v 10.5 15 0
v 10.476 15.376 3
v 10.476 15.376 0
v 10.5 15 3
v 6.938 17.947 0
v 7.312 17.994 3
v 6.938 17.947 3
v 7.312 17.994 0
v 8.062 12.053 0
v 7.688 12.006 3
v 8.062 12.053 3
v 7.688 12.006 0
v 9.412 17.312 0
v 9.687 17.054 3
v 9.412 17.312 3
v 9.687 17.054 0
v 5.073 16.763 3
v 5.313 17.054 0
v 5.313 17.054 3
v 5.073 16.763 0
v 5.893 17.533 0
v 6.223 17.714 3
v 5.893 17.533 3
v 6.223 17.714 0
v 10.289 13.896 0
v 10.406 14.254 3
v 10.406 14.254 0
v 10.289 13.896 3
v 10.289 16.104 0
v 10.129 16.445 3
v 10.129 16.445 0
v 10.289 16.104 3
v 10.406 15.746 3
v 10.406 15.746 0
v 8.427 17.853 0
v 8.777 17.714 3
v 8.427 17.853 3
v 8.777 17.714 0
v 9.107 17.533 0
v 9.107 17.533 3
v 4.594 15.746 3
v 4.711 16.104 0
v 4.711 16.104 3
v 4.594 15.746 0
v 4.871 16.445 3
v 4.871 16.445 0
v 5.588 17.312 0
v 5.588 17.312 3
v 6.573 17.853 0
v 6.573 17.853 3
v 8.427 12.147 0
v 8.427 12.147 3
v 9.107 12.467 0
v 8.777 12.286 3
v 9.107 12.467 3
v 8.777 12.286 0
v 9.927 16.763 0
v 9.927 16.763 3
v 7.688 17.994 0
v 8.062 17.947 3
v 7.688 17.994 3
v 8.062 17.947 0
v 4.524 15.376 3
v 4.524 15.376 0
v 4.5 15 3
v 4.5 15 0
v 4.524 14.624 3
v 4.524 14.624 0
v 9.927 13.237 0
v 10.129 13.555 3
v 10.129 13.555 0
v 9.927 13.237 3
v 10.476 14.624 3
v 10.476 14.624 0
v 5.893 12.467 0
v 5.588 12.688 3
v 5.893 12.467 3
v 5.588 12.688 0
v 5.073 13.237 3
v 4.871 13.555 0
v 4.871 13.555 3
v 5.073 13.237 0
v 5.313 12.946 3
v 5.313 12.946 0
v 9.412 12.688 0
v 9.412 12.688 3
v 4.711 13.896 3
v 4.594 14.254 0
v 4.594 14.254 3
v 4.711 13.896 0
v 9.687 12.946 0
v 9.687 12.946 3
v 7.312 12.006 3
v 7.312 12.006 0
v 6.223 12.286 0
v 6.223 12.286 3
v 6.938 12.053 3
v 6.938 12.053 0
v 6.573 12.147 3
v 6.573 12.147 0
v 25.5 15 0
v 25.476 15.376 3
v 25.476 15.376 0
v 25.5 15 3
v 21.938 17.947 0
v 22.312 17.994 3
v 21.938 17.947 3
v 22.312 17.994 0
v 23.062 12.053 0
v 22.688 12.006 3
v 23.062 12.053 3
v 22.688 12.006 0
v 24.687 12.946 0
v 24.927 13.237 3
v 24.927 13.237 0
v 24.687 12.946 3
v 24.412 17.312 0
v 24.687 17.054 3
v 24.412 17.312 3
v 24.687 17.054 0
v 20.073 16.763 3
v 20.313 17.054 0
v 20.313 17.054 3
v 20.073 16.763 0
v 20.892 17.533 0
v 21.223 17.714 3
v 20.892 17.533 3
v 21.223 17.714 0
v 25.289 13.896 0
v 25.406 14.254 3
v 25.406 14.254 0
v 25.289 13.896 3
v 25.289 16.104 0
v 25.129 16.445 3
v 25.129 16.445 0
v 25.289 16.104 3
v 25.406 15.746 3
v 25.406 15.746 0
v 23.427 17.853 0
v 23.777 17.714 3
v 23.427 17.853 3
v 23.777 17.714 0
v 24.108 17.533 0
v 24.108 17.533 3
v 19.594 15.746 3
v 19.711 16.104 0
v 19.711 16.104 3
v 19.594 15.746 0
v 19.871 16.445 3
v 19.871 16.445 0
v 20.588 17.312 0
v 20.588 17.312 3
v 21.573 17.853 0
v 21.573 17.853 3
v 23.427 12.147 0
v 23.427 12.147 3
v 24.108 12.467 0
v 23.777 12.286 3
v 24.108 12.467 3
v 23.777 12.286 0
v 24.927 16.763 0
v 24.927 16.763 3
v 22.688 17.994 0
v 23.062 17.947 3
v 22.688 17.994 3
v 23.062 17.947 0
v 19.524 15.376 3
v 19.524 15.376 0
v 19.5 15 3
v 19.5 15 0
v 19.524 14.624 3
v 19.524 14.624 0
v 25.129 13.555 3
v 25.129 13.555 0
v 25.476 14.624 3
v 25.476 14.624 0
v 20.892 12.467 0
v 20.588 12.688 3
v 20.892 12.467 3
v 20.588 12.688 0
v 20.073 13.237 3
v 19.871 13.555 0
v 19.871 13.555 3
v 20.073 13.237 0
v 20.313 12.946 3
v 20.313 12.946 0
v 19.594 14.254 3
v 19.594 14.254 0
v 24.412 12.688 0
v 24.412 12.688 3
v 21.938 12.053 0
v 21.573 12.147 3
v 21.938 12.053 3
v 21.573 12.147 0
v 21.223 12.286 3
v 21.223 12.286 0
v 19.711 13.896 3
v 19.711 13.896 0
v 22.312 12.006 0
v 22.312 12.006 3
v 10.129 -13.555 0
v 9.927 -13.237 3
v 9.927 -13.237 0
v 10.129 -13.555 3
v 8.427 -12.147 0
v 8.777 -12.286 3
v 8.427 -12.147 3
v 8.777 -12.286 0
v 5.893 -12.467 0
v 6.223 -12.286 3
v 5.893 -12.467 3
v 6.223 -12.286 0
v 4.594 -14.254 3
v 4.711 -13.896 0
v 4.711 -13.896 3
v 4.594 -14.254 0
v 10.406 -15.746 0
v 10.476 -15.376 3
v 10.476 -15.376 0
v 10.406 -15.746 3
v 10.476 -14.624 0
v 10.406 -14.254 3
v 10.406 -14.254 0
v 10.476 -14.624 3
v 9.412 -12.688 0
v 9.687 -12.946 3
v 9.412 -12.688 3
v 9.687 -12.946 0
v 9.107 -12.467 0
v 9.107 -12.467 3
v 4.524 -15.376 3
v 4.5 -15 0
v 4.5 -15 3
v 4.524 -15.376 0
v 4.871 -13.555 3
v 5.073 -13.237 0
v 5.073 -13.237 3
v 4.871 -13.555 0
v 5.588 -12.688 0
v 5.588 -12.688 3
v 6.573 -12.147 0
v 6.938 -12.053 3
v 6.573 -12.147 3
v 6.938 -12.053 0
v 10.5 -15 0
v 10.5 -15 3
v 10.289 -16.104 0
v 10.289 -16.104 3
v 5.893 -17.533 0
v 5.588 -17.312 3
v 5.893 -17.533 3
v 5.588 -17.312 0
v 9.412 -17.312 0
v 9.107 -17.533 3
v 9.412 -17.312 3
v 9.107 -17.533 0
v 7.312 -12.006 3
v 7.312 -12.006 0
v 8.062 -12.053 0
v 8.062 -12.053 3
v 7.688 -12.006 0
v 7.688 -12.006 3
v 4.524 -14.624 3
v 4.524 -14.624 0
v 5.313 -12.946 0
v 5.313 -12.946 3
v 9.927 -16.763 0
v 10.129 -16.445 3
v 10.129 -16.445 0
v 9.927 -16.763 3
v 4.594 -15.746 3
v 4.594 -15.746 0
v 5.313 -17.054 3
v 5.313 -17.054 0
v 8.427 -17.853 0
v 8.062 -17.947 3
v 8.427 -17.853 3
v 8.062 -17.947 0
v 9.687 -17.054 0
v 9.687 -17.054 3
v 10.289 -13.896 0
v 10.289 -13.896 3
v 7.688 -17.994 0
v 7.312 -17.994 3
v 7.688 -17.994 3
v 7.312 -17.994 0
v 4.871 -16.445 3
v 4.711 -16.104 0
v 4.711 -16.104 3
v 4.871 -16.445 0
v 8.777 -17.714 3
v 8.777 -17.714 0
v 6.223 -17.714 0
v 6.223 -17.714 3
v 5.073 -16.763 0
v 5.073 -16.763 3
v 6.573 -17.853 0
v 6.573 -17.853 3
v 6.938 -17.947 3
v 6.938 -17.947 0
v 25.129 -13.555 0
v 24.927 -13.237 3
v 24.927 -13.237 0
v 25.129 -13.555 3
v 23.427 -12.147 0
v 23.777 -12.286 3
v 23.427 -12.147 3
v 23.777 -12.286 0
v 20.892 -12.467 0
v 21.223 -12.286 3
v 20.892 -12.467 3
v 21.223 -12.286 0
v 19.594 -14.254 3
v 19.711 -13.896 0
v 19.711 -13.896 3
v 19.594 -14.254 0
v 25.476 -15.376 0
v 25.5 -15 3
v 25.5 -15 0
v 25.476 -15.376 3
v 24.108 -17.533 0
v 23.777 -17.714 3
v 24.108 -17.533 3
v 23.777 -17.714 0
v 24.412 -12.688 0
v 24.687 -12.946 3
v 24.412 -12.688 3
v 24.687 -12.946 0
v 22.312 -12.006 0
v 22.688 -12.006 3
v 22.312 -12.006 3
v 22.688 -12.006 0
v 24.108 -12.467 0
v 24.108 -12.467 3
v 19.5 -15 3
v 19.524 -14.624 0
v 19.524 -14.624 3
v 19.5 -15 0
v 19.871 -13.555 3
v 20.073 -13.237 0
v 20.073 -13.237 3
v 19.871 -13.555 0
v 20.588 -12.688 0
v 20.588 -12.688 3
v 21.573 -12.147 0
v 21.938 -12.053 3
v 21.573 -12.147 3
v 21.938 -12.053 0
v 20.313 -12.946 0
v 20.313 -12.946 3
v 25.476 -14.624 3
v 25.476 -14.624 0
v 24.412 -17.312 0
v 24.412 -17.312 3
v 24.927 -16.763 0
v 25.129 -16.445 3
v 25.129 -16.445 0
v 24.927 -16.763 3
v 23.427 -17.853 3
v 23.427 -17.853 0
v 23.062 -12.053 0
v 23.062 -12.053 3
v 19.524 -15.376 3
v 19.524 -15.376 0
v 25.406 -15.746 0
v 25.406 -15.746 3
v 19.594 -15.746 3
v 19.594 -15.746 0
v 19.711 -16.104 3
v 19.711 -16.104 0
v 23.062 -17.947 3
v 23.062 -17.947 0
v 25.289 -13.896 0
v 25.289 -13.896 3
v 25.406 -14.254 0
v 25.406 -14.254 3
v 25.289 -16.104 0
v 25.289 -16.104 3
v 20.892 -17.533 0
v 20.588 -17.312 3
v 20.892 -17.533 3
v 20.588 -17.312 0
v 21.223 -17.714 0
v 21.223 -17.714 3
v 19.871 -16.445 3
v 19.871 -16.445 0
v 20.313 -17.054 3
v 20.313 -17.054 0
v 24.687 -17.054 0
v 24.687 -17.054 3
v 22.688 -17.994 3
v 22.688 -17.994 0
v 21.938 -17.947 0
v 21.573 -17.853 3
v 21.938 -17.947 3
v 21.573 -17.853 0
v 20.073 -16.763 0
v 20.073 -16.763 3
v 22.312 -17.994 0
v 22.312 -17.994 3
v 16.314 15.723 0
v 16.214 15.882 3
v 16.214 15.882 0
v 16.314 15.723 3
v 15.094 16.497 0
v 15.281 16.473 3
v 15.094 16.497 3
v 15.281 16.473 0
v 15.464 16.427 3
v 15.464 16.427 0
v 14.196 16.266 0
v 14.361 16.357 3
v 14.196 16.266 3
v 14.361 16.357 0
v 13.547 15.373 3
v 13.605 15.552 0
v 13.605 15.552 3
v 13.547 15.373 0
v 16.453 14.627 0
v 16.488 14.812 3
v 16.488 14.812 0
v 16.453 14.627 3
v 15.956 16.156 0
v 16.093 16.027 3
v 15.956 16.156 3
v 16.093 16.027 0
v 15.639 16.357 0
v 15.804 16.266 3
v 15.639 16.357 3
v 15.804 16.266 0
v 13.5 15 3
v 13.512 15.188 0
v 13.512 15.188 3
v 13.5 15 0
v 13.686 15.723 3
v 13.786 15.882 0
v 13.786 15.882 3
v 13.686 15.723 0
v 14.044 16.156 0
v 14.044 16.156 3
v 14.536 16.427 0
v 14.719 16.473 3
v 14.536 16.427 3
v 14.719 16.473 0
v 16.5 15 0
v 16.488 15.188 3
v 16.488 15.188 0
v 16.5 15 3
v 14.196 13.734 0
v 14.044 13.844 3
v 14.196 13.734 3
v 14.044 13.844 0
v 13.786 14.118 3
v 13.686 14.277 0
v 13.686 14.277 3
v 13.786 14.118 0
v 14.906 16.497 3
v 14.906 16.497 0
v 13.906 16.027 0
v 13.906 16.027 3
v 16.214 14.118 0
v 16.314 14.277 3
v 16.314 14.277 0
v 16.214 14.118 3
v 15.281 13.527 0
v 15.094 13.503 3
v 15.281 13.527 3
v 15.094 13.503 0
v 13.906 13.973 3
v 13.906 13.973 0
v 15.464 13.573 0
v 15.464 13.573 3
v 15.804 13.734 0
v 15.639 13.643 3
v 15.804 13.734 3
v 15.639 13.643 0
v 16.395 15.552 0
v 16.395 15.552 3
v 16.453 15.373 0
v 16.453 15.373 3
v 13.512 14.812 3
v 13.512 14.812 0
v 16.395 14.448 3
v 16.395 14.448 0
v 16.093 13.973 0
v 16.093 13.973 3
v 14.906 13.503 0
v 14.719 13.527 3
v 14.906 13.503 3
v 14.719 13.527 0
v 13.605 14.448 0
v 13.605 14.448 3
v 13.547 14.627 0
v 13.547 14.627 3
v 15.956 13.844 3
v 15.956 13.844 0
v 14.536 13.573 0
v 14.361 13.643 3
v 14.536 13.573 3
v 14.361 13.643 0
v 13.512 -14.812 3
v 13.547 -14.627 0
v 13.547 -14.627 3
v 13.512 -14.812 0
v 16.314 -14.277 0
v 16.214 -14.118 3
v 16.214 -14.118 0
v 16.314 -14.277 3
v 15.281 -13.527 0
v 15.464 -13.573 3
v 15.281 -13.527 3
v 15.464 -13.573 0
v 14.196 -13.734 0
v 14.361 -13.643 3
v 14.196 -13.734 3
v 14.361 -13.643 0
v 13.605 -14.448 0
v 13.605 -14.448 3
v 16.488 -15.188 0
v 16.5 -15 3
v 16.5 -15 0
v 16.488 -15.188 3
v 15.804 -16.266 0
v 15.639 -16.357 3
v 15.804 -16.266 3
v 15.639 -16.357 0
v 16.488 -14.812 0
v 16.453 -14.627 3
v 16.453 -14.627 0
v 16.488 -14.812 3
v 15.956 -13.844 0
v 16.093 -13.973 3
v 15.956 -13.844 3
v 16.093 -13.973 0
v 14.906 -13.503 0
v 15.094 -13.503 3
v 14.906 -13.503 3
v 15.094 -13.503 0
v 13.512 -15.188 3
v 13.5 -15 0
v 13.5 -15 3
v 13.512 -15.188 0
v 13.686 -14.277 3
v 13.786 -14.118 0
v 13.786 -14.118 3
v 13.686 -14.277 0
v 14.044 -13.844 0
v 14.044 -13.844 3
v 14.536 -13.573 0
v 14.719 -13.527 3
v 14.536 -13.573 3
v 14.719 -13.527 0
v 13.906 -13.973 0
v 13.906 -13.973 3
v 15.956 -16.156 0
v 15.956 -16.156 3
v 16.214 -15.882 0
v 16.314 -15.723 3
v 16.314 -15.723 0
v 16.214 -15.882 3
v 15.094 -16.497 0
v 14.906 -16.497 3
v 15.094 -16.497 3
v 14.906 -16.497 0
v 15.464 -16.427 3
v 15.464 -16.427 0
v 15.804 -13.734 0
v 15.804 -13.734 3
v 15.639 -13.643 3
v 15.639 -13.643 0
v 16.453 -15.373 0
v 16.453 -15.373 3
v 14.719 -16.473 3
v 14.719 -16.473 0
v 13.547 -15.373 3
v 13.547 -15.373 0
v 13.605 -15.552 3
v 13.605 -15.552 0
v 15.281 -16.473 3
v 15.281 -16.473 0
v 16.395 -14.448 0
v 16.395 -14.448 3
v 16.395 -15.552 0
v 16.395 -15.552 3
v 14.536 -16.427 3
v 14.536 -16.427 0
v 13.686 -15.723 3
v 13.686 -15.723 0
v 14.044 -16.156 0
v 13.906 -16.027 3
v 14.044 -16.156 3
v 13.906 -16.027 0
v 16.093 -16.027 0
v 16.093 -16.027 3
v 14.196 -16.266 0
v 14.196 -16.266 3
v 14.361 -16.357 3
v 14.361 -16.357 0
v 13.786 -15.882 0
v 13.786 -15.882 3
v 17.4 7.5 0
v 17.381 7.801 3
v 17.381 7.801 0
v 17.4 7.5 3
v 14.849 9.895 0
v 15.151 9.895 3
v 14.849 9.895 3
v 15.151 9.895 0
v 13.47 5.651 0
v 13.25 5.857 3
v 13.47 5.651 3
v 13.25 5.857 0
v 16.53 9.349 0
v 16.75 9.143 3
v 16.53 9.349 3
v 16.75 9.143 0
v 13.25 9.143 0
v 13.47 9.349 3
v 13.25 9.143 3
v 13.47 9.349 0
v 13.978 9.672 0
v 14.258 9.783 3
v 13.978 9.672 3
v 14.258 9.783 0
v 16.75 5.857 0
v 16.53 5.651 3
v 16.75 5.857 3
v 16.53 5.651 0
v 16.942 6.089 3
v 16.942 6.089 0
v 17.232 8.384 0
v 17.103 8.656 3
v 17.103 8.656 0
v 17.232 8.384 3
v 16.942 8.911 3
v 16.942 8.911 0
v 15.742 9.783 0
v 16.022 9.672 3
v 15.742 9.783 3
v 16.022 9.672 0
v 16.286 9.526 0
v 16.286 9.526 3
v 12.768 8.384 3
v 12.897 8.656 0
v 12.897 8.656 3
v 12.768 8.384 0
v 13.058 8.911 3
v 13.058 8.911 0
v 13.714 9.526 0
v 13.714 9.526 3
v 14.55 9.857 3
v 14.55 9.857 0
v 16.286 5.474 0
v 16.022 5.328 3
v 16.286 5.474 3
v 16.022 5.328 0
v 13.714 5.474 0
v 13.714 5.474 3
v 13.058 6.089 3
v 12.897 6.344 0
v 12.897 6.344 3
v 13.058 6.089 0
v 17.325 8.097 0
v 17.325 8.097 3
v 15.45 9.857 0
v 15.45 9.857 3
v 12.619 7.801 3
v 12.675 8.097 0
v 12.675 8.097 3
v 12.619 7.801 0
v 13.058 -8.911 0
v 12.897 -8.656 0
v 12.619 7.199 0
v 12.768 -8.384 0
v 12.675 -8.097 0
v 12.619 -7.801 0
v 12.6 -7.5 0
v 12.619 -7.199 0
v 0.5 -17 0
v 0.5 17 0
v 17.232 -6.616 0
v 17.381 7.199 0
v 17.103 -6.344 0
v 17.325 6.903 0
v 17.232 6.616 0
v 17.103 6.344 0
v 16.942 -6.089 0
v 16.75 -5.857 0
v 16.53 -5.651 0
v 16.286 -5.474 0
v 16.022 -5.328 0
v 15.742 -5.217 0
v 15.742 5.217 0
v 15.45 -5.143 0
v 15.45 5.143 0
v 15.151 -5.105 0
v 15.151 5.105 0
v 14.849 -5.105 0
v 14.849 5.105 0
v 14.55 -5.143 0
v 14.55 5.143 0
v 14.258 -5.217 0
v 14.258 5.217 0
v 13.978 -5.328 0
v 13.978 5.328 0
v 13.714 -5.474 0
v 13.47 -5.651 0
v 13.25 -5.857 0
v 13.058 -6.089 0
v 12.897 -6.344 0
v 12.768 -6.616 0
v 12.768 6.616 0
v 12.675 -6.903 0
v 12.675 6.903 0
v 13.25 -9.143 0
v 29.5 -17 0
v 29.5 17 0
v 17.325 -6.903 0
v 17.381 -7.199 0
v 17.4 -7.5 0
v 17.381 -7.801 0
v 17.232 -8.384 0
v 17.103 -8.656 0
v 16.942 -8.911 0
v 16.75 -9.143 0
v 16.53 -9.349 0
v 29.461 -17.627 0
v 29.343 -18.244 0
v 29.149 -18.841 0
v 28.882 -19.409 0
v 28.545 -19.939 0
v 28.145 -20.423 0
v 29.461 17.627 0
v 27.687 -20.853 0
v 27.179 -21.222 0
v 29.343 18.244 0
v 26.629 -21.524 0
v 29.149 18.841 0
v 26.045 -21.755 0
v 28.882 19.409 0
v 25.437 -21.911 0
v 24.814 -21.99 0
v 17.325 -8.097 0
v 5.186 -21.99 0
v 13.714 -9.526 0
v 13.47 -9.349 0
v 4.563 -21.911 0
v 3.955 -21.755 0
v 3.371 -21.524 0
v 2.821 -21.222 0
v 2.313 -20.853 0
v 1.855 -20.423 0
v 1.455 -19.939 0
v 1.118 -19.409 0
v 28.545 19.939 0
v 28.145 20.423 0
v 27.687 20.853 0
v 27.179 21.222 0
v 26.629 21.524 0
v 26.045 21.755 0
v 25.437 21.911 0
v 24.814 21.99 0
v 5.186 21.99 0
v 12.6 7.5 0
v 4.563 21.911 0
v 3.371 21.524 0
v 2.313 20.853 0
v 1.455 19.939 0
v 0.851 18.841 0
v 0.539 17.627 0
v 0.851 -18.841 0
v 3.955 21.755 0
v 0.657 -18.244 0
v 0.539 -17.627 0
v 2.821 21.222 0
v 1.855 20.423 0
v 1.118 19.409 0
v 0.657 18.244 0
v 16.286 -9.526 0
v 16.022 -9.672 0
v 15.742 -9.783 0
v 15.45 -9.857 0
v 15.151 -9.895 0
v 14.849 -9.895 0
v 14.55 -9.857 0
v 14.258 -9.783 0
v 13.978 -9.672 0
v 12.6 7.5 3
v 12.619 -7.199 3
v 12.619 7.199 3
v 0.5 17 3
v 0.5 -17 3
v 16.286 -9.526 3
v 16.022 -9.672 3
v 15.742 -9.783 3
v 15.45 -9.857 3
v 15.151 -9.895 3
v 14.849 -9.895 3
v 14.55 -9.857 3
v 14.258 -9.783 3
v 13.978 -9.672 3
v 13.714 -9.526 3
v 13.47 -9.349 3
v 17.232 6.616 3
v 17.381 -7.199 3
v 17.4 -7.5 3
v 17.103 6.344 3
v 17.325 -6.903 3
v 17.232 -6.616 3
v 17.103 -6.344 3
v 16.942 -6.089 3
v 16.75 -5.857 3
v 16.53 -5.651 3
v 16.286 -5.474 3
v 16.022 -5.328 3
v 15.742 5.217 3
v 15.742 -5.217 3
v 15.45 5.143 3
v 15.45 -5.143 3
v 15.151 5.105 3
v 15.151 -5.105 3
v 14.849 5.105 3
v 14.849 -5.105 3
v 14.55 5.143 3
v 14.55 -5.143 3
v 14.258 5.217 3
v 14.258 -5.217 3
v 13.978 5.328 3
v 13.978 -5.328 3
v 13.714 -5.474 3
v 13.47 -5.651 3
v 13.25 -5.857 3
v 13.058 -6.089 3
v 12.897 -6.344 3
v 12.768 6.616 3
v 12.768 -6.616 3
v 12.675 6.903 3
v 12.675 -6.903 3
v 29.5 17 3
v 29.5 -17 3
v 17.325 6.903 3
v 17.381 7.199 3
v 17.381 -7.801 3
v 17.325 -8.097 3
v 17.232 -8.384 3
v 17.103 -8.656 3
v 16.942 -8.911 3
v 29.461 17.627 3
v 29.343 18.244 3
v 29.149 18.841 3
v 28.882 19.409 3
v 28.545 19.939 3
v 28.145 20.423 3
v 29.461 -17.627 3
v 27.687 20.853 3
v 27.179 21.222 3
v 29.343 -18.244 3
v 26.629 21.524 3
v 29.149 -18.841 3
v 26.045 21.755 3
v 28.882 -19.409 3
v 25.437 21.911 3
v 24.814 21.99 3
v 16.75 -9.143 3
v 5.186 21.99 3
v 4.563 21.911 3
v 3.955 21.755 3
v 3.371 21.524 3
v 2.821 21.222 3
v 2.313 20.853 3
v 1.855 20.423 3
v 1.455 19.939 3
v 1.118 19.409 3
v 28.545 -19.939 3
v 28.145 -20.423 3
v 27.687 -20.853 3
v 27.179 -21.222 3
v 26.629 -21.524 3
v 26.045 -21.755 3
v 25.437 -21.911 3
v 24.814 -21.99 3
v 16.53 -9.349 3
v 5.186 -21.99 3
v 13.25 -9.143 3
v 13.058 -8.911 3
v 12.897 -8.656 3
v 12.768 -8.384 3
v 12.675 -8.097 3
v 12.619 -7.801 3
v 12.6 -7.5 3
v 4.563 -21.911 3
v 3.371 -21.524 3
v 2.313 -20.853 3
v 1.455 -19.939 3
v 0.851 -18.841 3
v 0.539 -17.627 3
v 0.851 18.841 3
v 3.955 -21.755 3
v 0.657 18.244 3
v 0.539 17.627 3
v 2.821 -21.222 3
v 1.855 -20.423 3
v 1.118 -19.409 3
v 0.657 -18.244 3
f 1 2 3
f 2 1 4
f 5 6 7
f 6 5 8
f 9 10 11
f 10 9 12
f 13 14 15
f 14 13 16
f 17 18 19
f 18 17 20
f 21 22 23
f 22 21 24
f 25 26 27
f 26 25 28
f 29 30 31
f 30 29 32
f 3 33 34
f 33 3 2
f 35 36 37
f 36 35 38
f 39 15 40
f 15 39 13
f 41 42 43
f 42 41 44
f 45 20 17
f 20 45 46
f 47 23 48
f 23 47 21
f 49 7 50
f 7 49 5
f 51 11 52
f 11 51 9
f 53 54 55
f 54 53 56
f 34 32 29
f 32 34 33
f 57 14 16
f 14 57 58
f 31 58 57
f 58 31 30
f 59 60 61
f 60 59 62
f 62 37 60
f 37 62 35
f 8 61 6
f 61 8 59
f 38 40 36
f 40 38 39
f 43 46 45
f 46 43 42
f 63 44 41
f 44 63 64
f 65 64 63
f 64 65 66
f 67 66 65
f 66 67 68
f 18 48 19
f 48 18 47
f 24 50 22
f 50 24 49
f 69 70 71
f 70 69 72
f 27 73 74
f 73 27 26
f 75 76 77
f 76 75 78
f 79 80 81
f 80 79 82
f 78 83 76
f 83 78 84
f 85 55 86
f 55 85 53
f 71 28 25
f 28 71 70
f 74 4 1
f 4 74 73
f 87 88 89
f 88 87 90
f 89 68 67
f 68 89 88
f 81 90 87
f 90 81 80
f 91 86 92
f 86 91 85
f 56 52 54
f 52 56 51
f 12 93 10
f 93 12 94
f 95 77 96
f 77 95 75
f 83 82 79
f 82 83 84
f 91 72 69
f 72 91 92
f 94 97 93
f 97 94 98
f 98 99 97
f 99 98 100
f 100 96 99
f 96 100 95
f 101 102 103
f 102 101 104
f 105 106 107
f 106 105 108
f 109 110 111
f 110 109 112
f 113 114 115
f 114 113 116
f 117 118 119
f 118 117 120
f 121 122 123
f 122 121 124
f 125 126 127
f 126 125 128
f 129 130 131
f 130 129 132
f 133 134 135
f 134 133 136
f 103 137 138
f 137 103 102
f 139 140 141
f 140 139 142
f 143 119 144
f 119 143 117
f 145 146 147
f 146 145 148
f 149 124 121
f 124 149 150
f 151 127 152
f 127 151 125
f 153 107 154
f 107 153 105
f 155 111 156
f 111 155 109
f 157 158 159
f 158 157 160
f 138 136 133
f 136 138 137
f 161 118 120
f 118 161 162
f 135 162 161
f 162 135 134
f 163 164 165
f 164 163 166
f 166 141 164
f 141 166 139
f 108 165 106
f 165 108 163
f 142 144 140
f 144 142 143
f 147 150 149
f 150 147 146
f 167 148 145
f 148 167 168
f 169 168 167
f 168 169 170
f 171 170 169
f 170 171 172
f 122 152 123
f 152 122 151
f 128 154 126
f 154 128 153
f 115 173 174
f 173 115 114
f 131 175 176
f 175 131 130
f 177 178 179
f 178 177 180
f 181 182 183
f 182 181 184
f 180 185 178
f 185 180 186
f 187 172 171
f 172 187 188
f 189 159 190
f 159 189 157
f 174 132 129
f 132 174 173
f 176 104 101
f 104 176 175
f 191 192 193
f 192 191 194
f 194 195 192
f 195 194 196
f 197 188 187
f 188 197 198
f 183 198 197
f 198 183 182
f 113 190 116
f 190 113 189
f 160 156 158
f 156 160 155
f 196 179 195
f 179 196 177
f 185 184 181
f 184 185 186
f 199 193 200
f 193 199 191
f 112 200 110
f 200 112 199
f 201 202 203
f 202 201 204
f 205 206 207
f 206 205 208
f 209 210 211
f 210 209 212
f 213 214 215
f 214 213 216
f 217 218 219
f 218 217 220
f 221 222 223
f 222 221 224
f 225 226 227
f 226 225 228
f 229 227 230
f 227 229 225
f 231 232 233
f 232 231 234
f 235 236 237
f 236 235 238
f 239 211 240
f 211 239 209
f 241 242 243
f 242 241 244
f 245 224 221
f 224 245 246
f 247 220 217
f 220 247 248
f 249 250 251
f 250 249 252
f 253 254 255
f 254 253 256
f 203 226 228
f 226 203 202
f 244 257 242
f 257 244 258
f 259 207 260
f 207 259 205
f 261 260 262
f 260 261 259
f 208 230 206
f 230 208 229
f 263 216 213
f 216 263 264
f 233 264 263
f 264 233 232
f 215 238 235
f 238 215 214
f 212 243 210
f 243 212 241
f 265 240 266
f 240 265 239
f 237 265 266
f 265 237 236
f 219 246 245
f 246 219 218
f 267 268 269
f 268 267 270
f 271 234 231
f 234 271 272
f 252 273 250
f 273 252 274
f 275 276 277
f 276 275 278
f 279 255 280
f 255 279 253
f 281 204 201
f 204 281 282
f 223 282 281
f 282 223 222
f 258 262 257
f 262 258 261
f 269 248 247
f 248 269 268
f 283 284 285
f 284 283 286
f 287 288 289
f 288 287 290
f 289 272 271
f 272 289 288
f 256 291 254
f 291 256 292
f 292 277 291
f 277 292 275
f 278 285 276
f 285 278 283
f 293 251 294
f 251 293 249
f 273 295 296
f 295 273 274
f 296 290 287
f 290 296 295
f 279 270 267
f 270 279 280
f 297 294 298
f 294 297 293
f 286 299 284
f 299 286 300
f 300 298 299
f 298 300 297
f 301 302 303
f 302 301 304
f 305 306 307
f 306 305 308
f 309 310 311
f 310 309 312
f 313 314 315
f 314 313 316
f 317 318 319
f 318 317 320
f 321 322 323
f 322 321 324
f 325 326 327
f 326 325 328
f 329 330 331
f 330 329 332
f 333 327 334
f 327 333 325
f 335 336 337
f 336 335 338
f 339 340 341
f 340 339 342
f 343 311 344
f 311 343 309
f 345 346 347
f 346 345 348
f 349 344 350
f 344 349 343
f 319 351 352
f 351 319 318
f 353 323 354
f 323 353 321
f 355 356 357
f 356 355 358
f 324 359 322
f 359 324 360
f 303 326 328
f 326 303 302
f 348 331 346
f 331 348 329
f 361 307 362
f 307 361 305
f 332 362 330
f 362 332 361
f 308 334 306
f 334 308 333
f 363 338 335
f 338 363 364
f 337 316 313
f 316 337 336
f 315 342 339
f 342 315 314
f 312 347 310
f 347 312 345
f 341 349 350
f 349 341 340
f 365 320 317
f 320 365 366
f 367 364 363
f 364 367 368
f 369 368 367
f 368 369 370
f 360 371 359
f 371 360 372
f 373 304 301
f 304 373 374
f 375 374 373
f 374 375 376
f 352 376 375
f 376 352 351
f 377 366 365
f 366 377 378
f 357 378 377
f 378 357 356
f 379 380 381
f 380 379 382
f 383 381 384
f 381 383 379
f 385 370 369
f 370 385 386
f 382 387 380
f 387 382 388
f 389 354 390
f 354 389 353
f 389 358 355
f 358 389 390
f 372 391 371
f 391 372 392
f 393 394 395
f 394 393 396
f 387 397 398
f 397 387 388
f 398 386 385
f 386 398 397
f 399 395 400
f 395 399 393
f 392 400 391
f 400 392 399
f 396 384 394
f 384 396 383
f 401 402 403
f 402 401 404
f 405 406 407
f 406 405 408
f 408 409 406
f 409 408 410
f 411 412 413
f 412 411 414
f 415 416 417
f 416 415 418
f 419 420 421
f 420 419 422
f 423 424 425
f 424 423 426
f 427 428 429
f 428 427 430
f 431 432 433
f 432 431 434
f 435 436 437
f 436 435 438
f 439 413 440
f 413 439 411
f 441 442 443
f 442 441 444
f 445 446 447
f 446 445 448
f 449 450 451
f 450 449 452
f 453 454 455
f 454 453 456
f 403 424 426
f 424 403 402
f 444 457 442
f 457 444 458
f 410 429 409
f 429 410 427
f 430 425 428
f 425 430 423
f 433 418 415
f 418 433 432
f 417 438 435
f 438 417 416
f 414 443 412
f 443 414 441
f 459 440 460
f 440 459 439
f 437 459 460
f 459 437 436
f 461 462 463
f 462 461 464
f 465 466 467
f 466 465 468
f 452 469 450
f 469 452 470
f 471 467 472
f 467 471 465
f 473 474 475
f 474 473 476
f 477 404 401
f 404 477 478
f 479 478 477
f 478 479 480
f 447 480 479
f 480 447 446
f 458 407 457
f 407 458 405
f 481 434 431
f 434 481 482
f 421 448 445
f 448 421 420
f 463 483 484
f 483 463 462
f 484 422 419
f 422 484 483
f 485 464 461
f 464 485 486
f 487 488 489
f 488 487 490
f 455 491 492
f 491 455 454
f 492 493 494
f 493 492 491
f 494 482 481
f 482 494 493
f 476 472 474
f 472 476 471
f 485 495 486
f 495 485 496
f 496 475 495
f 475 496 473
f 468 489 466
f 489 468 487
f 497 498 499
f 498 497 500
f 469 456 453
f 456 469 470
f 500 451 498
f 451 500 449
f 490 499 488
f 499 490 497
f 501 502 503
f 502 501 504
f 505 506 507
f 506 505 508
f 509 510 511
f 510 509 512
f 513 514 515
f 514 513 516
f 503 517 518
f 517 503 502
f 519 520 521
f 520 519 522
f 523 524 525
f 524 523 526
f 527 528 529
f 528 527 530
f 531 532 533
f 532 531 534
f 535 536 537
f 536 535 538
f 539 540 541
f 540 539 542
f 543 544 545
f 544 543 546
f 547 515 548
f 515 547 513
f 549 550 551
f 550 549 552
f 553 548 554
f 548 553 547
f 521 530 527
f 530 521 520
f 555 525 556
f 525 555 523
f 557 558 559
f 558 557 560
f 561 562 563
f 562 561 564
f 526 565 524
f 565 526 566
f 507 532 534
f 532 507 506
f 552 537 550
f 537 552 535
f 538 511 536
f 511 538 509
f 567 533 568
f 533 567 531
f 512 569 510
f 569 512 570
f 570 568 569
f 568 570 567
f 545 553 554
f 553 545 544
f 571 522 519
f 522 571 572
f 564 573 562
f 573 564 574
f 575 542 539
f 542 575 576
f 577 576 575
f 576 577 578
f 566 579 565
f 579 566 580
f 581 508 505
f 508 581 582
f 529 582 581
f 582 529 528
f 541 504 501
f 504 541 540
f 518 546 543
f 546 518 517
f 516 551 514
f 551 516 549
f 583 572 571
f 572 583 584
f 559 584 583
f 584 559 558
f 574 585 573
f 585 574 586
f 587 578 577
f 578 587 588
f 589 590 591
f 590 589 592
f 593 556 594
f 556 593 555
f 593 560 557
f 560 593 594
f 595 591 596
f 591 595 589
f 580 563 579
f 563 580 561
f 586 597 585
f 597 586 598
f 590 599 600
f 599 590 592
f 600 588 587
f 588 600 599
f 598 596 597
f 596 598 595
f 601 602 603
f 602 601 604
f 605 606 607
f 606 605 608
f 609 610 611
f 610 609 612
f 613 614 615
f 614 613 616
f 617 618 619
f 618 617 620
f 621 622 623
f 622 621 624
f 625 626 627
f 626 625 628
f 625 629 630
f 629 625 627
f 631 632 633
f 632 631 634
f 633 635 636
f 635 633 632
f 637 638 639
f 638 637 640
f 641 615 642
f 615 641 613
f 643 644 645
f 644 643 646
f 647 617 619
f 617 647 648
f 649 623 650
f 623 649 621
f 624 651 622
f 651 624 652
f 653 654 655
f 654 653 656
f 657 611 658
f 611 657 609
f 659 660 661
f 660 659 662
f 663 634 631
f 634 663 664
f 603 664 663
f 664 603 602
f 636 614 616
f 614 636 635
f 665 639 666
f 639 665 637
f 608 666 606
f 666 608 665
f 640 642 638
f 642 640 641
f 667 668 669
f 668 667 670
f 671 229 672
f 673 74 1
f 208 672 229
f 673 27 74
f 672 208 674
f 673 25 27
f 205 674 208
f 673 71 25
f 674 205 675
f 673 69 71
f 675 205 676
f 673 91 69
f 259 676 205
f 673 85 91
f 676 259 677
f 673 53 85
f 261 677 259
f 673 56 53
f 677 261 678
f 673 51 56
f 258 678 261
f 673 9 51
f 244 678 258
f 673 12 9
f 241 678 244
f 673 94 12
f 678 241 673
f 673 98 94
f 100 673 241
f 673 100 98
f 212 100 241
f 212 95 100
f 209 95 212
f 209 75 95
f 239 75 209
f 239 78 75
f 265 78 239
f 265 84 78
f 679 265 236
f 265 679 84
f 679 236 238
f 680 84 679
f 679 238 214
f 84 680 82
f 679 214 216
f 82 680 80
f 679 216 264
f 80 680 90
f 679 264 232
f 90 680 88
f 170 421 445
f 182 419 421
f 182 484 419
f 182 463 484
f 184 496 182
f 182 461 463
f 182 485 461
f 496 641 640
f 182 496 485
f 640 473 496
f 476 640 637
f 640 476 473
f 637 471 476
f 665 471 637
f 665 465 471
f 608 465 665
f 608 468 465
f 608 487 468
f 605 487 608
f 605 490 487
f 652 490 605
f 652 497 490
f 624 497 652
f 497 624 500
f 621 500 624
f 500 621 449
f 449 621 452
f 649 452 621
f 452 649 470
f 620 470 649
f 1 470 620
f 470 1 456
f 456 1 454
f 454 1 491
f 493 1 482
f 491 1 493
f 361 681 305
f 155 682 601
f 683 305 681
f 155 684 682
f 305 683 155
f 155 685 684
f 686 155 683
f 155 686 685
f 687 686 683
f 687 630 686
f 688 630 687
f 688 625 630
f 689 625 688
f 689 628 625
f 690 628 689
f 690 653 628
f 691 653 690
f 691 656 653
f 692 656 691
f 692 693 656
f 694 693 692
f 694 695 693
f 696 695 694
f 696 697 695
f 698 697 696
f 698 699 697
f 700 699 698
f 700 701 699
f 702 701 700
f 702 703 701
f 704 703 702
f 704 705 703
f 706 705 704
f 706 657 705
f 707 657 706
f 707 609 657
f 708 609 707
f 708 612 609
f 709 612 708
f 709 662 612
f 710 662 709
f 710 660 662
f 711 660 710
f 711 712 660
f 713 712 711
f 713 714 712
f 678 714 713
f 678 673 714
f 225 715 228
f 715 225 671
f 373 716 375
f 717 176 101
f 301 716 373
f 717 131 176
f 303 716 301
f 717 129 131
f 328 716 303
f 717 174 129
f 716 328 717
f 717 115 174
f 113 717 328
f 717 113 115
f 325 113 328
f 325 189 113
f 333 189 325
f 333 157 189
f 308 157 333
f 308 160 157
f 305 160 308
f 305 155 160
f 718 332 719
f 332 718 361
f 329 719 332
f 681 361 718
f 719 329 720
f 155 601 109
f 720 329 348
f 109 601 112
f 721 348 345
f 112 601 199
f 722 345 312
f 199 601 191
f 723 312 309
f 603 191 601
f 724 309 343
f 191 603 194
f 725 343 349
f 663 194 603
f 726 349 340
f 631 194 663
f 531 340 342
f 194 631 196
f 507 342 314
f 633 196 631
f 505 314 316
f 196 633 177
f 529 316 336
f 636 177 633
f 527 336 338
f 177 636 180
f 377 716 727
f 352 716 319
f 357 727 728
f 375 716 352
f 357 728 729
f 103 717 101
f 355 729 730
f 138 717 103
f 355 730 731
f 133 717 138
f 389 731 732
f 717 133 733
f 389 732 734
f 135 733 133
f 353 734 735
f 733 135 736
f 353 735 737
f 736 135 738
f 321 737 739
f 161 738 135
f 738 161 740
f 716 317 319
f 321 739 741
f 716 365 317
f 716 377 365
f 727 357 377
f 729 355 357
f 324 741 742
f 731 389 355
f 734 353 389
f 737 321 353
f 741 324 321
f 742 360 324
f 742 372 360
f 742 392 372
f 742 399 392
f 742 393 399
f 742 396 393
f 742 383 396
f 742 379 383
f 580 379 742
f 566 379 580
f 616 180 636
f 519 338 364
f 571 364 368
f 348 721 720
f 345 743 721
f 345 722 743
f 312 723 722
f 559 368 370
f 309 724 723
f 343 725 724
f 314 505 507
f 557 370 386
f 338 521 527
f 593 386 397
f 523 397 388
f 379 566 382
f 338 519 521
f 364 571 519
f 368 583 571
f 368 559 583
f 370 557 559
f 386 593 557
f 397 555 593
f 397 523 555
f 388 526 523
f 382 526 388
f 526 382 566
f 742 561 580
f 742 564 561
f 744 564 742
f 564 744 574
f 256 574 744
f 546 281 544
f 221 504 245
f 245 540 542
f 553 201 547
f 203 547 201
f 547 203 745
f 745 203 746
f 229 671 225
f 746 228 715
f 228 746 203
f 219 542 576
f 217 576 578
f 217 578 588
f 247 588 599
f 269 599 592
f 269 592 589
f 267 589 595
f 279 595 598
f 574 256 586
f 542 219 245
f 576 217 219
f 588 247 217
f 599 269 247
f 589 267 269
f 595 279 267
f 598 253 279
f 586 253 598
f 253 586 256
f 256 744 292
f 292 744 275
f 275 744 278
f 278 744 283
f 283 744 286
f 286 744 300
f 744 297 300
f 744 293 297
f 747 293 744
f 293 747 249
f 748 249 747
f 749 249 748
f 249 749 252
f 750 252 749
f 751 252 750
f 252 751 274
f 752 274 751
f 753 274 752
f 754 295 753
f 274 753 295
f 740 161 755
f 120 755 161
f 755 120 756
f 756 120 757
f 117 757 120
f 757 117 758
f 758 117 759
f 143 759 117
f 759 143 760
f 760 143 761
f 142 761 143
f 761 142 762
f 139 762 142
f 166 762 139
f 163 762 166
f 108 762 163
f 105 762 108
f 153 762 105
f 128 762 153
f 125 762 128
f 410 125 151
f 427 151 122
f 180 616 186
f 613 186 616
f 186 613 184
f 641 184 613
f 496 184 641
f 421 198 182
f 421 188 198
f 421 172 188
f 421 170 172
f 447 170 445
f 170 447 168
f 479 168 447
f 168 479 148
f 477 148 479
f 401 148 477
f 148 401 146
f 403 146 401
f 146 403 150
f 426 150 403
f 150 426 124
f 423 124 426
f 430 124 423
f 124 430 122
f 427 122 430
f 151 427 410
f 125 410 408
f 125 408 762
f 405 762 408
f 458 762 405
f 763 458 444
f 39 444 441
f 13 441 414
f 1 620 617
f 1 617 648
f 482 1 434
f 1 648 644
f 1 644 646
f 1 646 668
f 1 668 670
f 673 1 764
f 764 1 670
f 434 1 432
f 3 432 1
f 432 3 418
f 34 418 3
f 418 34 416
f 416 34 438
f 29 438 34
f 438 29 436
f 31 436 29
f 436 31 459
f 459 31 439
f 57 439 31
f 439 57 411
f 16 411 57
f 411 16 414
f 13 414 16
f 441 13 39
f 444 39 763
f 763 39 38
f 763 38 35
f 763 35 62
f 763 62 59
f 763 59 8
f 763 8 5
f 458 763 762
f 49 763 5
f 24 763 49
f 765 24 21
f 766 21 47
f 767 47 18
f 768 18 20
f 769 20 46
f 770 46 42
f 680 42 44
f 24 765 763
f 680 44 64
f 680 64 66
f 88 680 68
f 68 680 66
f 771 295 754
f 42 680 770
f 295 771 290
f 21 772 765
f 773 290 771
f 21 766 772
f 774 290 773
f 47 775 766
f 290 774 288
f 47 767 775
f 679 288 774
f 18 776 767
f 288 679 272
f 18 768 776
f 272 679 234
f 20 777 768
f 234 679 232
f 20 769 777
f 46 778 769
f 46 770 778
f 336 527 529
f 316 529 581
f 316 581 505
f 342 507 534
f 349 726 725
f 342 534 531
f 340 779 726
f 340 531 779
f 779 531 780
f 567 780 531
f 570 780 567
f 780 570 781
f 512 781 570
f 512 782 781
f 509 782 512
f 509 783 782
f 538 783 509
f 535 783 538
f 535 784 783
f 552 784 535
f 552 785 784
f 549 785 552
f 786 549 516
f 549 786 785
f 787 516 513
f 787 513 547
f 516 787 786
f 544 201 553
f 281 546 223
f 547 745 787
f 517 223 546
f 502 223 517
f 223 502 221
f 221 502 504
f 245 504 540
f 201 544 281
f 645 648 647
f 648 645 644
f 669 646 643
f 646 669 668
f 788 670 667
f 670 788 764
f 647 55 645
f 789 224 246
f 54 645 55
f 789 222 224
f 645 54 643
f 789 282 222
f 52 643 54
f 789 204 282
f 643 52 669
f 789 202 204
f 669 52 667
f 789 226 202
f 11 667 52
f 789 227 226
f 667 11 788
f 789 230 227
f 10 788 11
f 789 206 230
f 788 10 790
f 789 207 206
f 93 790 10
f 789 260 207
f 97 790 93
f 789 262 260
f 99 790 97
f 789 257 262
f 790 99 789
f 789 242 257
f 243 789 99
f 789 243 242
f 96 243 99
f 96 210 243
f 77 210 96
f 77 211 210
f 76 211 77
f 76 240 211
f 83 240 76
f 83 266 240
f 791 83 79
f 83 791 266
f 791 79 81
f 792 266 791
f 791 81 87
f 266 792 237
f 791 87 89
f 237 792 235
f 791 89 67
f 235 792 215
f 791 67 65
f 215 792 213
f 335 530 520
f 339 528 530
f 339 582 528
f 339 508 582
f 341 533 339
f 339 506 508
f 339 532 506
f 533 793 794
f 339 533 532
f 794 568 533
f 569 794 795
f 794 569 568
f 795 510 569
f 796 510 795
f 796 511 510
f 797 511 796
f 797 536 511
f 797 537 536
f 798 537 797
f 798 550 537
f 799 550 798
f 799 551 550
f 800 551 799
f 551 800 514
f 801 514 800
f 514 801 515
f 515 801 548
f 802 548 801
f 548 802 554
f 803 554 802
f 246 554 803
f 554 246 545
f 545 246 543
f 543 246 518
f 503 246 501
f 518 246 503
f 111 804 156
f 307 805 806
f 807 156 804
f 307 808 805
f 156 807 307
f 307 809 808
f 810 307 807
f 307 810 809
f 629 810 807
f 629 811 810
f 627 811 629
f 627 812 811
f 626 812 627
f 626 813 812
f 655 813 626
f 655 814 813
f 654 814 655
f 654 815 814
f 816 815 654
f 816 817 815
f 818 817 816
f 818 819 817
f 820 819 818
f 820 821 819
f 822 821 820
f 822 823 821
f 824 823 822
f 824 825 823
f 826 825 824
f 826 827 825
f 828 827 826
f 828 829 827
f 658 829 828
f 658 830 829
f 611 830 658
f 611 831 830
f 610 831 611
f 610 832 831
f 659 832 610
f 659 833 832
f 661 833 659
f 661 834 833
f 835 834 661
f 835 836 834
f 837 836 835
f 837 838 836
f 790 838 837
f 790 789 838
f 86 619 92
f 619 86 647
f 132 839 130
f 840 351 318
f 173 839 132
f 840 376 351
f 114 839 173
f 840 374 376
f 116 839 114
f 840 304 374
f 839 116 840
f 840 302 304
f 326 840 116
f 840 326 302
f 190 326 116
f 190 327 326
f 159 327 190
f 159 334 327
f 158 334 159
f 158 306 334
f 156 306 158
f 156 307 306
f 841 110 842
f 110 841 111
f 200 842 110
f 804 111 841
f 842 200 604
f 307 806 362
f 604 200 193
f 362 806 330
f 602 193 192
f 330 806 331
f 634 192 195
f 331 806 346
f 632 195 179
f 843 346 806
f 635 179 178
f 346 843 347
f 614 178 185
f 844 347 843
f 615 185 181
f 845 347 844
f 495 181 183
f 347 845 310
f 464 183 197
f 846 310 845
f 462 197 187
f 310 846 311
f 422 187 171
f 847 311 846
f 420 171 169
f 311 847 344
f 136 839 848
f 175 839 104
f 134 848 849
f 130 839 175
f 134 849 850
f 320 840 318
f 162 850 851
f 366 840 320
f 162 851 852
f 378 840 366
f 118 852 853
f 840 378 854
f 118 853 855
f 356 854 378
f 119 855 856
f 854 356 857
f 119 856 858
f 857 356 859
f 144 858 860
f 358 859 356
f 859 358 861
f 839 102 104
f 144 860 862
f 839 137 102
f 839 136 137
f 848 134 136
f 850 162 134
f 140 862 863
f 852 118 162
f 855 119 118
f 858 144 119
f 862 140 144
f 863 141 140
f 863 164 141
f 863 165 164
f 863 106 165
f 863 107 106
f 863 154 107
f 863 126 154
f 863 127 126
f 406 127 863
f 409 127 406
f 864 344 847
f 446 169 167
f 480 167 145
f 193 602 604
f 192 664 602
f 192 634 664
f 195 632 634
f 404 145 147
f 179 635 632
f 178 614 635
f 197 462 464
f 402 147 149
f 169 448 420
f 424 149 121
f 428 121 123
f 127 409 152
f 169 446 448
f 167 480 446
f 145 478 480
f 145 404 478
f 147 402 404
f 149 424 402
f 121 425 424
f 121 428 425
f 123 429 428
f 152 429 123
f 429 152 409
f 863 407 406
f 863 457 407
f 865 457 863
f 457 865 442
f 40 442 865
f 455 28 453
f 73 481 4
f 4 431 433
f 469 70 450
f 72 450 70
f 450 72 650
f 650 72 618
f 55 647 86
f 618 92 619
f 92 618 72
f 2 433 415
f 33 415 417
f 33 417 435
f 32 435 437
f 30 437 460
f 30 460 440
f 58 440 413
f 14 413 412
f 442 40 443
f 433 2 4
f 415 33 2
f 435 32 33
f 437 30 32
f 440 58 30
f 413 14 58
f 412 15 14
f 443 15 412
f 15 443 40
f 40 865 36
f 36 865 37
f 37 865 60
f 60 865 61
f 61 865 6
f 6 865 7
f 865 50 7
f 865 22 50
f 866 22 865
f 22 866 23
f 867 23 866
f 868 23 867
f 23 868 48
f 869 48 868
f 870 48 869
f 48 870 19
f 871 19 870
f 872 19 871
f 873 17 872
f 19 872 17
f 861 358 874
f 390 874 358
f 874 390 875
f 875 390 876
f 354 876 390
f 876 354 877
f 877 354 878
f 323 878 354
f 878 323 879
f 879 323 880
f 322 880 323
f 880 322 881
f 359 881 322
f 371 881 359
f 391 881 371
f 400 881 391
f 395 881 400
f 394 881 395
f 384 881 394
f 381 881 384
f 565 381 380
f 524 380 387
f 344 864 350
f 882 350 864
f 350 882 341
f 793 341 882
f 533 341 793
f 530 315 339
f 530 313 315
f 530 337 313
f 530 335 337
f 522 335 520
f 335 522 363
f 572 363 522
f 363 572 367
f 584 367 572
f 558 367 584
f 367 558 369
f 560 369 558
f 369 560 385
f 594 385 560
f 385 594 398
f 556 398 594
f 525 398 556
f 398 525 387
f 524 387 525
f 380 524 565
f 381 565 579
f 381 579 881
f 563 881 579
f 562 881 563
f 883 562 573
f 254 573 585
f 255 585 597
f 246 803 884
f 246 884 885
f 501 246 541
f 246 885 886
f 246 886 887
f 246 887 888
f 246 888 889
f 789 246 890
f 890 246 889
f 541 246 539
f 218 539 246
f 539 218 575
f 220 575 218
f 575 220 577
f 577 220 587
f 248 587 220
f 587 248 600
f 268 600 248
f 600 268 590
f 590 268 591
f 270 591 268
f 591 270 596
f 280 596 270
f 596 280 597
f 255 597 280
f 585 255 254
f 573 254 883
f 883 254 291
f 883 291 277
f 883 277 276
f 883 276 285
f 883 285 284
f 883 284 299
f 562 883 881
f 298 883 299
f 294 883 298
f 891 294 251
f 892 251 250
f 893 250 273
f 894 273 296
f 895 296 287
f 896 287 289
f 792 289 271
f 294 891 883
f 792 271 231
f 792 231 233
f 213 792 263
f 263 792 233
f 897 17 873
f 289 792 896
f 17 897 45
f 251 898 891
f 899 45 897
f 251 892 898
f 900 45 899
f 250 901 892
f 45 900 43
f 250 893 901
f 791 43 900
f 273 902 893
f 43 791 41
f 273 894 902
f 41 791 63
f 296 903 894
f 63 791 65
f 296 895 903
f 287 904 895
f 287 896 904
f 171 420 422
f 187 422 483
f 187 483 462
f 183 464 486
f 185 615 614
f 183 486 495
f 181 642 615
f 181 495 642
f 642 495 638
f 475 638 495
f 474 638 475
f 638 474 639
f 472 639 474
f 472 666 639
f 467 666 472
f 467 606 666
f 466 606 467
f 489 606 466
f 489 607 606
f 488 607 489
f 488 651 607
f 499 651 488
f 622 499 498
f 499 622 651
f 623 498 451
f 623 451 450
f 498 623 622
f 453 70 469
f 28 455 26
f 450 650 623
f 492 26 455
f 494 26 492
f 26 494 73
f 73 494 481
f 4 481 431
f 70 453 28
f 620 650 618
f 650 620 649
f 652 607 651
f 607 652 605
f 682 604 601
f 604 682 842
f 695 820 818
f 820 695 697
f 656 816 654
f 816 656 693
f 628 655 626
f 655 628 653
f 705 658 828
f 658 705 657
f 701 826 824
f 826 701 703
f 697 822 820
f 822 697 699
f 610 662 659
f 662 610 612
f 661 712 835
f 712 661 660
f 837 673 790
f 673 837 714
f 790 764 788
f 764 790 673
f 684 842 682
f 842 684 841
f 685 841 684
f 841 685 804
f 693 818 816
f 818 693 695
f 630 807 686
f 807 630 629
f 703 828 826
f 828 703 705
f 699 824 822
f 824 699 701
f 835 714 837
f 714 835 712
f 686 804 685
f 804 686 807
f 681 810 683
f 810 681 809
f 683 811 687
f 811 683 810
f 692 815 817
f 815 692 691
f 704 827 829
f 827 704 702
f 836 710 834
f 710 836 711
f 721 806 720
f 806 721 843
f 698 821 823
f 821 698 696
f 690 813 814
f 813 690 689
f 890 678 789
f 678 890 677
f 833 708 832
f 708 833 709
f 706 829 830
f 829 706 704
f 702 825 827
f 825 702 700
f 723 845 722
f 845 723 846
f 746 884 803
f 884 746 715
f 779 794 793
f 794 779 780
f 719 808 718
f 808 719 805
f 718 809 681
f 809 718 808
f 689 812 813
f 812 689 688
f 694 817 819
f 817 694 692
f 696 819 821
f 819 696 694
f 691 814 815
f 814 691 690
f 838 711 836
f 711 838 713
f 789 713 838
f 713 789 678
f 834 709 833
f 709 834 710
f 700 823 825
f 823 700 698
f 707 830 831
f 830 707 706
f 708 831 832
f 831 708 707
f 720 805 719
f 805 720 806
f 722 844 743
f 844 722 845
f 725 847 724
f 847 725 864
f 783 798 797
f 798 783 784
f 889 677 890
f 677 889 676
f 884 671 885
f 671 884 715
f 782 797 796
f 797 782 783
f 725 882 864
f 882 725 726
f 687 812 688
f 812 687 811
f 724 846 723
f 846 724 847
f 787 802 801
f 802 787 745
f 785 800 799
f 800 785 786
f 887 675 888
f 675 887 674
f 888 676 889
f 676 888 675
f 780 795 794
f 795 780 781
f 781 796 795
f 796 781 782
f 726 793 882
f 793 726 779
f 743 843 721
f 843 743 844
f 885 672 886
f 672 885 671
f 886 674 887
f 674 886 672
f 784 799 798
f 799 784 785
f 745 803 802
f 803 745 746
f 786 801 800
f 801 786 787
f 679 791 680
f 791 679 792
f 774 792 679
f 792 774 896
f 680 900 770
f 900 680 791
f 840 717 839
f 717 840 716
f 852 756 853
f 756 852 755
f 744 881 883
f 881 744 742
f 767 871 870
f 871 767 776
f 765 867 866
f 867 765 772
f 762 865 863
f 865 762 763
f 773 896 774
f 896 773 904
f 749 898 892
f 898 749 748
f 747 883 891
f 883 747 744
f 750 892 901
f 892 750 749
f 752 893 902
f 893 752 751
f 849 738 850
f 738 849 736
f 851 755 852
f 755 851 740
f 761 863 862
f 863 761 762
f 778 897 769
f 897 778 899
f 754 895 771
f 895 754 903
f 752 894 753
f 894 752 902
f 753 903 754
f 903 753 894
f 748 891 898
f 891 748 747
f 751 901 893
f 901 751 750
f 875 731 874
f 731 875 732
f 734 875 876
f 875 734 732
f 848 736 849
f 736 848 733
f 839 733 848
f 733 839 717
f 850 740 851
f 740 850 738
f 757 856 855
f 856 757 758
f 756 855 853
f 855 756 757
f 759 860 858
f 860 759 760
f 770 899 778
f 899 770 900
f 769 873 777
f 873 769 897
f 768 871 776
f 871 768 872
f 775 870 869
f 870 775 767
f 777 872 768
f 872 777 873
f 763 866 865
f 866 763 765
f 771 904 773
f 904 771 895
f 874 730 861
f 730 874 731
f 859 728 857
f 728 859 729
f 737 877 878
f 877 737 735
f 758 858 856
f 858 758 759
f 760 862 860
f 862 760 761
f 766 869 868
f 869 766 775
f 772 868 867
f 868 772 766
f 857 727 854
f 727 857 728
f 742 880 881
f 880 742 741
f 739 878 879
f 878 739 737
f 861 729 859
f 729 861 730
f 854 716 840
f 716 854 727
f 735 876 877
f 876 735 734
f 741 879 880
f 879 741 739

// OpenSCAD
$fn = 50;


difference() {
	union() {
		translate(v = [15.0000000000, 0, 0]) {
			rotate(a = [0, 0, 0]) {
				hull() {
					translate(v = [-9.5000000000, 17.0000000000, 0]) {
						rotate(a = [0, 0, 0]) {
							translate(v = [0, 0, 0]) {
								rotate(a = [0, 0, 0]) {
									cylinder(h = 3, r = 5);
								}
							}
						}
					}
					translate(v = [9.5000000000, 17.0000000000, 0]) {
						rotate(a = [0, 0, 0]) {
							translate(v = [0, 0, 0]) {
								rotate(a = [0, 0, 0]) {
									cylinder(h = 3, r = 5);
								}
							}
						}
					}
					translate(v = [-9.5000000000, -17.0000000000, 0]) {
						rotate(a = [0, 0, 0]) {
							translate(v = [0, 0, 0]) {
								rotate(a = [0, 0, 0]) {
									cylinder(h = 3, r = 5);
								}
							}
						}
					}
					translate(v = [9.5000000000, -17.0000000000, 0]) {
						rotate(a = [0, 0, 0]) {
							translate(v = [0, 0, 0]) {
								rotate(a = [0, 0, 0]) {
									cylinder(h = 3, r = 5);
								}
							}
						}
					}
				}
			}
		}
	}
	union() {
		translate(v = [7.5000000000, 15.0000000000, -125.0000000000]) {
			rotate(a = [0, 0, 0]) {
				cylinder(h = 250, r = 3.0000000000);
			}
		}
		translate(v = [22.5000000000, 15.0000000000, -125.0000000000]) {
			rotate(a = [0, 0, 0]) {
				cylinder(h = 250, r = 3.0000000000);
			}
		}
		translate(v = [7.5000000000, -15.0000000000, -125.0000000000]) {
			rotate(a = [0, 0, 0]) {
				cylinder(h = 250, r = 3.0000000000);
			}
		}
		translate(v = [22.5000000000, -15.0000000000, -125.0000000000]) {
			rotate(a = [0, 0, 0]) {
				cylinder(h = 250, r = 3.0000000000);
			}
		}
		translate(v = [7.5000000000, 15.0000000000, -125.0000000000]) {
			rotate(a = [0, 0, 0]) {
				cylinder(h = 250, r = 1.5000000000);
			}
		}
		translate(v = [15.0000000000, 15.0000000000, -125.0000000000]) {
			rotate(a = [0, 0, 0]) {
				cylinder(h = 250, r = 1.5000000000);
			}
		}
		translate(v = [22.5000000000, 15.0000000000, -125.0000000000]) {
			rotate(a = [0, 0, 0]) {
				cylinder(h = 250, r = 1.5000000000);
			}
		}
		translate(v = [7.5000000000, -15.0000000000, -125.0000000000]) {
			rotate(a = [0, 0, 0]) {
				cylinder(h = 250, r = 1.5000000000);
			}
		}
		translate(v = [15.0000000000, -15.0000000000, -125.0000000000]) {
			rotate(a = [0, 0, 0]) {
				cylinder(h = 250, r = 1.5000000000);
			}
		}
		translate(v = [22.5000000000, -15.0000000000, -125.0000000000]) {
			rotate(a = [0, 0, 0]) {
				cylinder(h = 250, r = 1.5000000000);
			}
		}
		translate(v = [15, 7.5000000000, -125.0000000000]) {
			rotate(a = [0, 0, 0]) {
				cylinder(h = 250, r = 1.5000000000);
			}
		}
		translate(v = [15, -7.5000000000, -125.0000000000]) {
			rotate(a = [0, 0, 0]) {
				cylinder(h = 250, r = 1.5000000000);
			}
		}
		translate(v = [15, 7.5000000000, 0]) {
			rotate(a = [0, 0, 0]) {
				cylinder(h = 3, r1 = 2.4000000000, r2 = 2.4000000000);
			}
		}
		translate(v = [15, 7.5000000000, -222.0000000000]) {
			rotate(a = [0, 0, 0]) {
				cylinder(h = 250, r = 1.5000000000);
			}
		}
		translate(v = [15, -7.5000000000, 0]) {
			rotate(a = [0, 0, 0]) {
				cylinder(h = 3, r1 = 2.4000000000, r2 = 2.4000000000);
			}
		}
		translate(v = [15, -7.5000000000, -222.0000000000]) {
			rotate(a = [0, 0, 0]) {
				cylinder(h = 250, r = 1.5000000000);
			}
		}
	}
}
